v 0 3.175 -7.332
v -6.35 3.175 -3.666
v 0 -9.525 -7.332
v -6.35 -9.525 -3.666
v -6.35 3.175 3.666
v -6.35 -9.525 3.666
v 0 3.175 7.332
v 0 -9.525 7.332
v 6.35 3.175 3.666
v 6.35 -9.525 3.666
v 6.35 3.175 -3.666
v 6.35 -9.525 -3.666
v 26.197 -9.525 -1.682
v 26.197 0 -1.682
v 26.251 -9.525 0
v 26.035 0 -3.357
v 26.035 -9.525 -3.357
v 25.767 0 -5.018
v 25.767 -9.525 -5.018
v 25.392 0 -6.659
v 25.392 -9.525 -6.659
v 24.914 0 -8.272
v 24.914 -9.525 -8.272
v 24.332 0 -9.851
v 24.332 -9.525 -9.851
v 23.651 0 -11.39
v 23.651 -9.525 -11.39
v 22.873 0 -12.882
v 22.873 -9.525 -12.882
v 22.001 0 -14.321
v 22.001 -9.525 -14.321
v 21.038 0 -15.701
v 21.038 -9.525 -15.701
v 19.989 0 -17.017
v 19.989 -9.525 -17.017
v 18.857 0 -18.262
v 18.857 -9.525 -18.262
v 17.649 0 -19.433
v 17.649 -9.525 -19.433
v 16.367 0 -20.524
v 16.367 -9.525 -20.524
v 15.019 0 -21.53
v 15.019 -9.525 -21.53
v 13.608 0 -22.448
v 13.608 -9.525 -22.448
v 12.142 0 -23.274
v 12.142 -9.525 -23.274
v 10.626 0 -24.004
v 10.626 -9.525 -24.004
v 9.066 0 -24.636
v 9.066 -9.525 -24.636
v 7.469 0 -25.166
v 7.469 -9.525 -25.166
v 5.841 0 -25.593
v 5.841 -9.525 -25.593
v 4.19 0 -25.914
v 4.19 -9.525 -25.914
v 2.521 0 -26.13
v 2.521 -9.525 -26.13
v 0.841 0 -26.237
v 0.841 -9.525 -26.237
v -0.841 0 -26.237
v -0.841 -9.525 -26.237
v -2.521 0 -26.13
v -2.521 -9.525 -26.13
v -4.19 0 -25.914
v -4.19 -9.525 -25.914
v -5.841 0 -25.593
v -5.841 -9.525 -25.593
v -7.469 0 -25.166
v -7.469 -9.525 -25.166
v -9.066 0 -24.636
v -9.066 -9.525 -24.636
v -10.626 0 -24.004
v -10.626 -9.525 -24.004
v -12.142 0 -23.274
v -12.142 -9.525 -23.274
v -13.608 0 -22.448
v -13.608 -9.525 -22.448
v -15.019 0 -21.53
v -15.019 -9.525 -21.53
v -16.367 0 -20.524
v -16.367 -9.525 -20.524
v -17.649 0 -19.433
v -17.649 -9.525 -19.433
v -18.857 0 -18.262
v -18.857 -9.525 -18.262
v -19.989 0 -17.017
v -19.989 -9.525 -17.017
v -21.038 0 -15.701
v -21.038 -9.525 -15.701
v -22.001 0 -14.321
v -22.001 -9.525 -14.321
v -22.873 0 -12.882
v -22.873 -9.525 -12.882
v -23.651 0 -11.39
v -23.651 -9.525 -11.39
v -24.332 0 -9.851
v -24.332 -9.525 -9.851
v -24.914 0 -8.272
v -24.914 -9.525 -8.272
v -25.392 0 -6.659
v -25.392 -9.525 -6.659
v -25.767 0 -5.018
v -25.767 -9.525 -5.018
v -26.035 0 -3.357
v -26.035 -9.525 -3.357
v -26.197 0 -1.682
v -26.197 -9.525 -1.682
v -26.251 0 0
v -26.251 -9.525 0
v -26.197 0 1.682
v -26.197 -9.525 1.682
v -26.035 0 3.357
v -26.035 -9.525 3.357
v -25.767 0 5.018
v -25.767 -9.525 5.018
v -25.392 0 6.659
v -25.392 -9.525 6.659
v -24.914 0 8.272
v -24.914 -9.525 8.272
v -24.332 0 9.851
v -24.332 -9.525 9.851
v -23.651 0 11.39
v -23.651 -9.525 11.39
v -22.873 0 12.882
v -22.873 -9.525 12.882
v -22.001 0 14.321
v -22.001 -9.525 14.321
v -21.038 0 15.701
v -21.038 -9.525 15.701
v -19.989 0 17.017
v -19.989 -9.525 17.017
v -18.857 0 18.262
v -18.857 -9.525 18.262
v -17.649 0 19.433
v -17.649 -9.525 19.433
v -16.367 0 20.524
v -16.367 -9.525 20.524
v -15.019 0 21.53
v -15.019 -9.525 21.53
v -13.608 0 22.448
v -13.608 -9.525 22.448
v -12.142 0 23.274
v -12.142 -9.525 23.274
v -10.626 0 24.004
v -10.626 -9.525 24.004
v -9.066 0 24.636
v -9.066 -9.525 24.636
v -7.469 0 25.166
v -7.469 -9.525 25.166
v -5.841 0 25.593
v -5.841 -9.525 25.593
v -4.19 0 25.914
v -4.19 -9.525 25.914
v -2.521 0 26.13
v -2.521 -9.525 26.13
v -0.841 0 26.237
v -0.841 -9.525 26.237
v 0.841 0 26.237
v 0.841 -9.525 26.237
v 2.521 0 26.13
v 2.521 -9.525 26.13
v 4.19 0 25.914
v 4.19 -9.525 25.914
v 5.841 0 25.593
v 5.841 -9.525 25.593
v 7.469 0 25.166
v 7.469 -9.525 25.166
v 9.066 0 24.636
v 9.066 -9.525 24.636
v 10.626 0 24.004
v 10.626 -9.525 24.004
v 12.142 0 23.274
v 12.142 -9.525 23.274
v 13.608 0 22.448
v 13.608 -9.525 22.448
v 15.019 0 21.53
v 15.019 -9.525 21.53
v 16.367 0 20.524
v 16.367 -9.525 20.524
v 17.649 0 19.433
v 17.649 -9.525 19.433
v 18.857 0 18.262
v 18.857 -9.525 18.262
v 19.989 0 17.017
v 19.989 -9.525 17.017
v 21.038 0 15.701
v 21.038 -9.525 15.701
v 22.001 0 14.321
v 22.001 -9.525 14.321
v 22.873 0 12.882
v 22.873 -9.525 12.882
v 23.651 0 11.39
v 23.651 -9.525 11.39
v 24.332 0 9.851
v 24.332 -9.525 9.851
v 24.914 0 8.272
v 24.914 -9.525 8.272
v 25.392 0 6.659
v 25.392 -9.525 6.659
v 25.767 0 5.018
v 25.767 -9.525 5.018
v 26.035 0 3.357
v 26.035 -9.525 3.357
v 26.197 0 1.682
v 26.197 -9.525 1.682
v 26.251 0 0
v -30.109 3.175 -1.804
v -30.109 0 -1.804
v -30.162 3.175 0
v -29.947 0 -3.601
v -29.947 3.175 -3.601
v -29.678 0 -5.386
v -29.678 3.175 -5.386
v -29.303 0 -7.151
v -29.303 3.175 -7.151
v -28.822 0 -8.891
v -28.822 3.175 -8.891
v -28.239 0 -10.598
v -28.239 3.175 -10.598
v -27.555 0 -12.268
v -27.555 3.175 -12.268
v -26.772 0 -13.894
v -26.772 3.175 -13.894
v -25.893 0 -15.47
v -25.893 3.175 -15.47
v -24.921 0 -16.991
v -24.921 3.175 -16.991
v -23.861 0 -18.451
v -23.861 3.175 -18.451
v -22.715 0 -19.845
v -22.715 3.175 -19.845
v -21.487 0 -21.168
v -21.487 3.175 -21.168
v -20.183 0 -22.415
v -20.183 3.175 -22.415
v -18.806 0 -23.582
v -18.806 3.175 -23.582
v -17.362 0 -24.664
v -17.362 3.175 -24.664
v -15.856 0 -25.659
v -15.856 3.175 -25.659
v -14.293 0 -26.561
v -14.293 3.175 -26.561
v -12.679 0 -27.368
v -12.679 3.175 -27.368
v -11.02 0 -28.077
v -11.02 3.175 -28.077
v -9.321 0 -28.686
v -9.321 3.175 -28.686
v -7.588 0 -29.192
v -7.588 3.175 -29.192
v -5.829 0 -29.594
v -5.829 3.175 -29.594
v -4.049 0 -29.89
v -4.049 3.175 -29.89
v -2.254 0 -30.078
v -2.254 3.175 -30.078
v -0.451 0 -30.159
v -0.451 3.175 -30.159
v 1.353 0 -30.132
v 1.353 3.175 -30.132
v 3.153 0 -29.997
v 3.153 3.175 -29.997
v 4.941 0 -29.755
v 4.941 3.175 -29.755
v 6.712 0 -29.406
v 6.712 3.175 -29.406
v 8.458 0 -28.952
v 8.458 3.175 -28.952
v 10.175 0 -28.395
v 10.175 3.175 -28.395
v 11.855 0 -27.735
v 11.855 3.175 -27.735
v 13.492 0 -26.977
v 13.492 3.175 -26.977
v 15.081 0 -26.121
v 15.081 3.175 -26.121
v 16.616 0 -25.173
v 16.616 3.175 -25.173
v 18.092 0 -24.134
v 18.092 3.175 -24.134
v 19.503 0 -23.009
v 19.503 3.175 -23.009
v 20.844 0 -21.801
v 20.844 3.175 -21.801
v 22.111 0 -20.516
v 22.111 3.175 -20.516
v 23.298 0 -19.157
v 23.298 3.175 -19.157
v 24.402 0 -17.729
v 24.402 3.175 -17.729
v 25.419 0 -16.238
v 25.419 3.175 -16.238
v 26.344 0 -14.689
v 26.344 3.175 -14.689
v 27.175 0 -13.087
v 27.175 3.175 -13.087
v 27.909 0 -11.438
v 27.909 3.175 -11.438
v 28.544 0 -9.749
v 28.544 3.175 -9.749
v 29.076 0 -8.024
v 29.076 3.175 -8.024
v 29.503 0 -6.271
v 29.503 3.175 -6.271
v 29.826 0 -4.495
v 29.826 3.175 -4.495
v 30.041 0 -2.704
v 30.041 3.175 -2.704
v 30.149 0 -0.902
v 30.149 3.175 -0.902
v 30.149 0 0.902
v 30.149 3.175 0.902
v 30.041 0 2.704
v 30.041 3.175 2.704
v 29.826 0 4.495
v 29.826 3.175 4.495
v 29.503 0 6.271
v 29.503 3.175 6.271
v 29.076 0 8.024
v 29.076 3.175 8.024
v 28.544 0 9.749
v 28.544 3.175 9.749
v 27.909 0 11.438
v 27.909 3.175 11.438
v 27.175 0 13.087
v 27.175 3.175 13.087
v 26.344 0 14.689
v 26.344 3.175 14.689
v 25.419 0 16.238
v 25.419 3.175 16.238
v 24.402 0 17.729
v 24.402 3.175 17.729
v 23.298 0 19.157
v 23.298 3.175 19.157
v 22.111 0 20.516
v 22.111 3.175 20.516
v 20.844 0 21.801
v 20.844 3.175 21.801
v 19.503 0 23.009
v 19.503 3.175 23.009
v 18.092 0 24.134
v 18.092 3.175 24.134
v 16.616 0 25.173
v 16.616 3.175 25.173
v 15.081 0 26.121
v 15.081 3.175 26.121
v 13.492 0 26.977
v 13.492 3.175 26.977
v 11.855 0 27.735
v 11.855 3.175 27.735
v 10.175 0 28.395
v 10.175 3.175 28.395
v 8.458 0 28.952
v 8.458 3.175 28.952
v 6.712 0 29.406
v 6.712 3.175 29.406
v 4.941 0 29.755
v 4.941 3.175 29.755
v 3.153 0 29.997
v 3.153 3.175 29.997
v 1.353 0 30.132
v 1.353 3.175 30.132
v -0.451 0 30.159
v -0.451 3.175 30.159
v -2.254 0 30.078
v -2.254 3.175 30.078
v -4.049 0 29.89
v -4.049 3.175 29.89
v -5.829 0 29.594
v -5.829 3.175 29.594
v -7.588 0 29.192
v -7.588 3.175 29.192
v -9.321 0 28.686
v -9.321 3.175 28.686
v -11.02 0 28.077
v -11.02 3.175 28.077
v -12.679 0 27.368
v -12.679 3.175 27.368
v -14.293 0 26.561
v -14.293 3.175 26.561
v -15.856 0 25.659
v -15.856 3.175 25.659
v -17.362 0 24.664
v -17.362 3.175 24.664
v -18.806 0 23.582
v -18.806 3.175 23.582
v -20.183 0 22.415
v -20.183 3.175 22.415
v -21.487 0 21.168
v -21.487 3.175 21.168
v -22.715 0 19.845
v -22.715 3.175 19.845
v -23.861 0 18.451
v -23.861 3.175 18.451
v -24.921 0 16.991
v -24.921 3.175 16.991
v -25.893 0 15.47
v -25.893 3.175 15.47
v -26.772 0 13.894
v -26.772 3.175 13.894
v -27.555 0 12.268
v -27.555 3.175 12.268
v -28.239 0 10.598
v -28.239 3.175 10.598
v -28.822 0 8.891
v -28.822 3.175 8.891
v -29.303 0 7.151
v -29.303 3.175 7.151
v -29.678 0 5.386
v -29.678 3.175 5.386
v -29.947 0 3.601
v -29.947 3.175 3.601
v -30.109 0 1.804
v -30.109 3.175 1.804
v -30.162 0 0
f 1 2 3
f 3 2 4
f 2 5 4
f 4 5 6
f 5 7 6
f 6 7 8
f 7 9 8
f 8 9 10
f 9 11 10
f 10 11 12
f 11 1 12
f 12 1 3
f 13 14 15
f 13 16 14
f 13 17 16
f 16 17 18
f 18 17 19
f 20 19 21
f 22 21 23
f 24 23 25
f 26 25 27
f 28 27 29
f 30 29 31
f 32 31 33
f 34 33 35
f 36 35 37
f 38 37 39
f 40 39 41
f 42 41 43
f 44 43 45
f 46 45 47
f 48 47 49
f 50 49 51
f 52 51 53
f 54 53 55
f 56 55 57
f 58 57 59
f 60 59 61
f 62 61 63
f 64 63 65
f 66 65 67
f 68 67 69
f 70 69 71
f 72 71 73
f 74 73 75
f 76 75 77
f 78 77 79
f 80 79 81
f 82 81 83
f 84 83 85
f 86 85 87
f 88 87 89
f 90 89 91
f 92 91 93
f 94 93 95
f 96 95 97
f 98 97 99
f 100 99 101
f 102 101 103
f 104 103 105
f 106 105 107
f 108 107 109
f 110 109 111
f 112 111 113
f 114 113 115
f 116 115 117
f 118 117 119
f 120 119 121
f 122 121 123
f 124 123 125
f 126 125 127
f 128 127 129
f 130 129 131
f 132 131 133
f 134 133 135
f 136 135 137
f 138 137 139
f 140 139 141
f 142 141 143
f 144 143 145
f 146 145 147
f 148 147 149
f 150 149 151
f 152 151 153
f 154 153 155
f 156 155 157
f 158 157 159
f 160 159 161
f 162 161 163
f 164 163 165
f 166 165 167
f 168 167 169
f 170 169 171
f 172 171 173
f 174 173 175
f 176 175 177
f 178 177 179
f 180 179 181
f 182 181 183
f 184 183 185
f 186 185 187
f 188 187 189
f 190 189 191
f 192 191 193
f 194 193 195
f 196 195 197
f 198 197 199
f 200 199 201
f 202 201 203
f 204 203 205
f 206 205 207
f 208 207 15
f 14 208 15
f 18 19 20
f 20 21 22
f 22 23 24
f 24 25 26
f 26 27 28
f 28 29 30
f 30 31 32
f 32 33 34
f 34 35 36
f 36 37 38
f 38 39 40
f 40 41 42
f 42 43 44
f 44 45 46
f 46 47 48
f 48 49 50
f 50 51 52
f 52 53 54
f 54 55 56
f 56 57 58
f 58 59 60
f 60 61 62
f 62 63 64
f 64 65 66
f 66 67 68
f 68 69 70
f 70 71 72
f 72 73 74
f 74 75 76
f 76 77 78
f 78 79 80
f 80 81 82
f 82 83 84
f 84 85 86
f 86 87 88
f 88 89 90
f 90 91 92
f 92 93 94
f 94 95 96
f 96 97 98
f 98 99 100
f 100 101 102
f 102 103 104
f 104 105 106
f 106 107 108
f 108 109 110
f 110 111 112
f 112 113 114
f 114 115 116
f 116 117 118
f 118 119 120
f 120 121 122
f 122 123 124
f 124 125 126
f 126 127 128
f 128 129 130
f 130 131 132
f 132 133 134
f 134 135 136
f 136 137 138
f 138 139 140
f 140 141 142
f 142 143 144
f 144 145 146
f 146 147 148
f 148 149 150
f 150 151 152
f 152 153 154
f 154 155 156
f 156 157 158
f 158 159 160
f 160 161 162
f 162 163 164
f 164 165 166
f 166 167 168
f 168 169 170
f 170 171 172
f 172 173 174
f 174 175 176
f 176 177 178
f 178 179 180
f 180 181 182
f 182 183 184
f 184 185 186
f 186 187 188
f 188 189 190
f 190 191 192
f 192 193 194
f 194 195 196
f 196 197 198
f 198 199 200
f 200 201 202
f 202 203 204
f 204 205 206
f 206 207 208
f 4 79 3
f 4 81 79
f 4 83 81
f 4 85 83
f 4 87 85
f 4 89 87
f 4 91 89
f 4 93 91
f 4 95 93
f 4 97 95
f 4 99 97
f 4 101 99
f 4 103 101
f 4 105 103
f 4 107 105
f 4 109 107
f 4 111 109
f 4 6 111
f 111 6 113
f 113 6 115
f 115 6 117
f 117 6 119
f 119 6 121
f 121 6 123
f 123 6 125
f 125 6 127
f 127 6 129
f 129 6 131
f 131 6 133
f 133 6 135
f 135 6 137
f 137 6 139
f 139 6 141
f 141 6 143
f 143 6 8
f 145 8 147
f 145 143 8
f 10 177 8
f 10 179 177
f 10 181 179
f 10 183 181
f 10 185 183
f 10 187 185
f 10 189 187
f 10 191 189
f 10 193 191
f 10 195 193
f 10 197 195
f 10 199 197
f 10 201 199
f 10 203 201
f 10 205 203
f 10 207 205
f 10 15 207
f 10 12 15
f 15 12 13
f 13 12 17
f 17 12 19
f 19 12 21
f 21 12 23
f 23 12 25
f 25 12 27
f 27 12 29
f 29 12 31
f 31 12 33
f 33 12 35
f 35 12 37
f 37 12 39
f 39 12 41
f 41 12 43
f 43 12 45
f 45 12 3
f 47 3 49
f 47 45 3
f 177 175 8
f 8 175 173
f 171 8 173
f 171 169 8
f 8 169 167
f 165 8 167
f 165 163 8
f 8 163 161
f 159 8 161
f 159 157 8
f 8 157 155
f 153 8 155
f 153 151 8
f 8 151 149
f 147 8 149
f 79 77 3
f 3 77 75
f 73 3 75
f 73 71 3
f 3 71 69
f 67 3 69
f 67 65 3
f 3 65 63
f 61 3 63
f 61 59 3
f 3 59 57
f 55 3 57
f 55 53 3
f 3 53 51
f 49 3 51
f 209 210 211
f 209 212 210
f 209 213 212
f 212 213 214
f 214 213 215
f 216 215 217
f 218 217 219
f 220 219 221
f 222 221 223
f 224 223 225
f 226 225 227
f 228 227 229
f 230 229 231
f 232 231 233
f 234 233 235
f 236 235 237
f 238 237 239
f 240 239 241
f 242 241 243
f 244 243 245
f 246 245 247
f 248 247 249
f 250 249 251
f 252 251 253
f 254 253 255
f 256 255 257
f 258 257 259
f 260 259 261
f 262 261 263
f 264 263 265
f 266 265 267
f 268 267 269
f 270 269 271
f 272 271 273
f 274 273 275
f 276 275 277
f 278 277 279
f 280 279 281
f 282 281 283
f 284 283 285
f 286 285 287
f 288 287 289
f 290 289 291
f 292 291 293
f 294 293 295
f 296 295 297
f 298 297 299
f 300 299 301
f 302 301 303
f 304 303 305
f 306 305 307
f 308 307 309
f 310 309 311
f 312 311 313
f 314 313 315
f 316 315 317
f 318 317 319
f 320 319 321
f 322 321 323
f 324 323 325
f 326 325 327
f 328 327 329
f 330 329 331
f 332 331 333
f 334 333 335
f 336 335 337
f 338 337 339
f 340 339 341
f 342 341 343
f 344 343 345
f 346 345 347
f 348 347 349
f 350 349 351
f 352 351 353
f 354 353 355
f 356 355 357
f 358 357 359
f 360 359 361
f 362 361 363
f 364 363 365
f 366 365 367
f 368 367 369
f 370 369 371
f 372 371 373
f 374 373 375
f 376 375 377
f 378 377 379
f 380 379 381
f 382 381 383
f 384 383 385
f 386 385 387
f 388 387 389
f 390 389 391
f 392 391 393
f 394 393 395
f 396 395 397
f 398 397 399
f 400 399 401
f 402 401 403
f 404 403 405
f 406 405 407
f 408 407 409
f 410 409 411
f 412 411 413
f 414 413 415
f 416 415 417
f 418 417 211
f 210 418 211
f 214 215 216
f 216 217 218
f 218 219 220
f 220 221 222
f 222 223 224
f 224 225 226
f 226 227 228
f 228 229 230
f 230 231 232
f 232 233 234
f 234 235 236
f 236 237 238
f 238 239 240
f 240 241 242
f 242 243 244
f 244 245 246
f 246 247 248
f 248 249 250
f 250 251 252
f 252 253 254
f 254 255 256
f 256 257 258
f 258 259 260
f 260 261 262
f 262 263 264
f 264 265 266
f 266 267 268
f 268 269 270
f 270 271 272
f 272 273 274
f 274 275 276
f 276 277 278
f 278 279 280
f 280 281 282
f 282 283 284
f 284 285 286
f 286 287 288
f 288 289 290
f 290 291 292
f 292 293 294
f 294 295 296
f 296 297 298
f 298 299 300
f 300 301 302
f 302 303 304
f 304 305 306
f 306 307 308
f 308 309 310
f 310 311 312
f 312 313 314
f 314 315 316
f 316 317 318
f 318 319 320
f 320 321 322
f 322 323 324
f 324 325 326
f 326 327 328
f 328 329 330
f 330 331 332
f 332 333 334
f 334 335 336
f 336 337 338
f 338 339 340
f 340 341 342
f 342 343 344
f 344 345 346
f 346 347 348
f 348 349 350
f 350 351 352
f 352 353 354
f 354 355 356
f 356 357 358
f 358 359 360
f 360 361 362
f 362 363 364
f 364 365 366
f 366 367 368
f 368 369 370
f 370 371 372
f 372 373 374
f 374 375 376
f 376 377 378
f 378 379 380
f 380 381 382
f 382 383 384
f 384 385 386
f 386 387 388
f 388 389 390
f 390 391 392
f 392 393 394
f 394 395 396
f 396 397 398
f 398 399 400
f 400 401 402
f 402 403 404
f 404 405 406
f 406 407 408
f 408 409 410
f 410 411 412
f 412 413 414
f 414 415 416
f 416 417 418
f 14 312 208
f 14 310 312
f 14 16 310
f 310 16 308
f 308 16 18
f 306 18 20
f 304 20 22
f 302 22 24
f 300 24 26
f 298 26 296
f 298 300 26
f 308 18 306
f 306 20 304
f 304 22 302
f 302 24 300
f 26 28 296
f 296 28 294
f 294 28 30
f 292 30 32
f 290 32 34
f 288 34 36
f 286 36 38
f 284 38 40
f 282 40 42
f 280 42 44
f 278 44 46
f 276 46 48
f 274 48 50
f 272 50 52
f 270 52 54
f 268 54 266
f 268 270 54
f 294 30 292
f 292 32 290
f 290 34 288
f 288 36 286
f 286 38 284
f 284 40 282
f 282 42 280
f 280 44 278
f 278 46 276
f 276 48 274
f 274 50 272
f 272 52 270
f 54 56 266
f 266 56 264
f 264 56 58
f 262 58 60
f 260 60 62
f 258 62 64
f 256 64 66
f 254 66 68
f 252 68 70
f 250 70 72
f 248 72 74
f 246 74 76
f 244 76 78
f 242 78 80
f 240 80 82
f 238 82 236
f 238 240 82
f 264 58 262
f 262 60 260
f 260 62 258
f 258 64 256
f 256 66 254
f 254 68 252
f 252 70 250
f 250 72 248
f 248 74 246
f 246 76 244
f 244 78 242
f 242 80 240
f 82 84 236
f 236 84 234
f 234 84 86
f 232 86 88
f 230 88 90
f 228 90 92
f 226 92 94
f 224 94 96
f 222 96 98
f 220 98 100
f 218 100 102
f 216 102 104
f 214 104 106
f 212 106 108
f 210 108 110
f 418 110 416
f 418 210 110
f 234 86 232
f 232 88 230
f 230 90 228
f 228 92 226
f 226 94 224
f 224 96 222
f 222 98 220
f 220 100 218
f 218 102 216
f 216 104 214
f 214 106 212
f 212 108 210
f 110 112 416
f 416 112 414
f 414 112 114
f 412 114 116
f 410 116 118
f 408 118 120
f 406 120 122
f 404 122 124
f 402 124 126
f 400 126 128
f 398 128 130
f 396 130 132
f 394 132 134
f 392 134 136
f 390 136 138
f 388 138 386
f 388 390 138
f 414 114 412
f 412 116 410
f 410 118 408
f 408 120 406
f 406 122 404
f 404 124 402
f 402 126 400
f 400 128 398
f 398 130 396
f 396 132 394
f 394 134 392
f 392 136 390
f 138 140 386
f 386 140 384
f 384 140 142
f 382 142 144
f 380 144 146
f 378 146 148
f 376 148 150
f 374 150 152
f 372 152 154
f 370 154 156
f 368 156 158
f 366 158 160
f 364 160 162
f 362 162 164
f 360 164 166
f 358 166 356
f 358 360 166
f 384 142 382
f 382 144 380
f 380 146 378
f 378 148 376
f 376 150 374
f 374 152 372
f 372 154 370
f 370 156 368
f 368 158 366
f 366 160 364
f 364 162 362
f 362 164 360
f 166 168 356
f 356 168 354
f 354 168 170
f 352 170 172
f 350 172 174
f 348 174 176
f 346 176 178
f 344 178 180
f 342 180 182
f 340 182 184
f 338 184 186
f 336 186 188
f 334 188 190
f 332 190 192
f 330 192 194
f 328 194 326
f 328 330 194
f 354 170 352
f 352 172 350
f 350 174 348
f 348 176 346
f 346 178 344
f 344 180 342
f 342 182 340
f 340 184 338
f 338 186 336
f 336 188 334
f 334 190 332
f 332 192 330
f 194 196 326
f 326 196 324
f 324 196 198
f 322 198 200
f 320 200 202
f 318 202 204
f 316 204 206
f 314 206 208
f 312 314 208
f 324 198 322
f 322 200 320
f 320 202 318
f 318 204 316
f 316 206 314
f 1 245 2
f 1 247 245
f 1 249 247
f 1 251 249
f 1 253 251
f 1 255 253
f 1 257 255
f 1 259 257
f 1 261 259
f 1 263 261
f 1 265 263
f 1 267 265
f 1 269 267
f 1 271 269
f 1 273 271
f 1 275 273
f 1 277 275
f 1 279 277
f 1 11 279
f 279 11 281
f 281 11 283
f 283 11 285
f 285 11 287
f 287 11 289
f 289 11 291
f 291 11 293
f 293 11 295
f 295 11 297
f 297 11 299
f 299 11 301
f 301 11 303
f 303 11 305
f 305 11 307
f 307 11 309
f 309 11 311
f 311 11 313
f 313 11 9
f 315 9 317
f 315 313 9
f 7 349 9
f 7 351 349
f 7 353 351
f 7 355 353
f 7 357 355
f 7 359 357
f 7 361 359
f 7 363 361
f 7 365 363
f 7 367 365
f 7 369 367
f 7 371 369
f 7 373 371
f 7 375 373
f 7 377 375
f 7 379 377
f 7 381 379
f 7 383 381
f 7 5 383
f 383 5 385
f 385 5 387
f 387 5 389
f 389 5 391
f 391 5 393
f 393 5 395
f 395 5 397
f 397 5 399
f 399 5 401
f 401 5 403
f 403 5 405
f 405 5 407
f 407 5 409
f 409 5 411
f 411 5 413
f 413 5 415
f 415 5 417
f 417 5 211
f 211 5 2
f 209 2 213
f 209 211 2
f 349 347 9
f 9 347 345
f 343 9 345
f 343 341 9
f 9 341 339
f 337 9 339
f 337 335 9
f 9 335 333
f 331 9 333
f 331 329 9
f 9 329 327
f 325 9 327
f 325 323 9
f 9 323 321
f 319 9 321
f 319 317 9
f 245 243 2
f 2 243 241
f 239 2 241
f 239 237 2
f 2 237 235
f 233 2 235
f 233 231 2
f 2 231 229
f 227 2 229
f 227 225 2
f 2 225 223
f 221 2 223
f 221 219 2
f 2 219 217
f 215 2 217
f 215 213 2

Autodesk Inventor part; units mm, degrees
ref_plane "YZ Plane" through (0, 0, 0) normal (1, 0, 0) x (0, 1, 0)
ref_plane "XZ Plane" through (0, 0, 0) normal (0, 1, 0) x (-1, 0, 0)
ref_plane "XY Plane" through (0, 0, 0) normal (0, 0, 1) x (1, 0, 0)
sketch "Sketch1" plane through (0, 0, 0) normal (0, 1, 0) x (-1, 0, 0)
  circle A0 centre (0, 0) radius 30.1625
  dimension "d0" = 60.325
extrude "Extrusion1" add sketch "Sketch1" along normal blind 3.175
sketch "Sketch2" plane through (0, 0, 0) normal (0, -1, 0) x (1, 0, 0)
  circle A0 centre (0, 0) radius 26.2509
  dimension "d3" = 52.5018
extrude "Extrusion2" add sketch "Sketch2" along normal blind 9.525
sketch "Sketch3" plane through (0, 3.175, 0) normal (0, 1, 0) x (1, 0, 0)
  line L0 (0, 7.3323) -> (6.35, 3.6662)
  line L1 (6.35, 3.6662) -> (6.35, -3.6662)
  line L2 (6.35, -3.6662) -> (0, -7.3323)
  line L3 (0, -7.3323) -> (-6.35, -3.6662)
  line L4 (-6.35, -3.6662) -> (-6.35, 3.6662)
  line L5 (-6.35, 3.6662) -> (0, 7.3323)
  point P0 (0, 0)
  point P1 (0, 0)
  dimension "d12" = 12.7
extrude "Extrusion3" cut sketch "Sketch3" against normal blind 12.7
